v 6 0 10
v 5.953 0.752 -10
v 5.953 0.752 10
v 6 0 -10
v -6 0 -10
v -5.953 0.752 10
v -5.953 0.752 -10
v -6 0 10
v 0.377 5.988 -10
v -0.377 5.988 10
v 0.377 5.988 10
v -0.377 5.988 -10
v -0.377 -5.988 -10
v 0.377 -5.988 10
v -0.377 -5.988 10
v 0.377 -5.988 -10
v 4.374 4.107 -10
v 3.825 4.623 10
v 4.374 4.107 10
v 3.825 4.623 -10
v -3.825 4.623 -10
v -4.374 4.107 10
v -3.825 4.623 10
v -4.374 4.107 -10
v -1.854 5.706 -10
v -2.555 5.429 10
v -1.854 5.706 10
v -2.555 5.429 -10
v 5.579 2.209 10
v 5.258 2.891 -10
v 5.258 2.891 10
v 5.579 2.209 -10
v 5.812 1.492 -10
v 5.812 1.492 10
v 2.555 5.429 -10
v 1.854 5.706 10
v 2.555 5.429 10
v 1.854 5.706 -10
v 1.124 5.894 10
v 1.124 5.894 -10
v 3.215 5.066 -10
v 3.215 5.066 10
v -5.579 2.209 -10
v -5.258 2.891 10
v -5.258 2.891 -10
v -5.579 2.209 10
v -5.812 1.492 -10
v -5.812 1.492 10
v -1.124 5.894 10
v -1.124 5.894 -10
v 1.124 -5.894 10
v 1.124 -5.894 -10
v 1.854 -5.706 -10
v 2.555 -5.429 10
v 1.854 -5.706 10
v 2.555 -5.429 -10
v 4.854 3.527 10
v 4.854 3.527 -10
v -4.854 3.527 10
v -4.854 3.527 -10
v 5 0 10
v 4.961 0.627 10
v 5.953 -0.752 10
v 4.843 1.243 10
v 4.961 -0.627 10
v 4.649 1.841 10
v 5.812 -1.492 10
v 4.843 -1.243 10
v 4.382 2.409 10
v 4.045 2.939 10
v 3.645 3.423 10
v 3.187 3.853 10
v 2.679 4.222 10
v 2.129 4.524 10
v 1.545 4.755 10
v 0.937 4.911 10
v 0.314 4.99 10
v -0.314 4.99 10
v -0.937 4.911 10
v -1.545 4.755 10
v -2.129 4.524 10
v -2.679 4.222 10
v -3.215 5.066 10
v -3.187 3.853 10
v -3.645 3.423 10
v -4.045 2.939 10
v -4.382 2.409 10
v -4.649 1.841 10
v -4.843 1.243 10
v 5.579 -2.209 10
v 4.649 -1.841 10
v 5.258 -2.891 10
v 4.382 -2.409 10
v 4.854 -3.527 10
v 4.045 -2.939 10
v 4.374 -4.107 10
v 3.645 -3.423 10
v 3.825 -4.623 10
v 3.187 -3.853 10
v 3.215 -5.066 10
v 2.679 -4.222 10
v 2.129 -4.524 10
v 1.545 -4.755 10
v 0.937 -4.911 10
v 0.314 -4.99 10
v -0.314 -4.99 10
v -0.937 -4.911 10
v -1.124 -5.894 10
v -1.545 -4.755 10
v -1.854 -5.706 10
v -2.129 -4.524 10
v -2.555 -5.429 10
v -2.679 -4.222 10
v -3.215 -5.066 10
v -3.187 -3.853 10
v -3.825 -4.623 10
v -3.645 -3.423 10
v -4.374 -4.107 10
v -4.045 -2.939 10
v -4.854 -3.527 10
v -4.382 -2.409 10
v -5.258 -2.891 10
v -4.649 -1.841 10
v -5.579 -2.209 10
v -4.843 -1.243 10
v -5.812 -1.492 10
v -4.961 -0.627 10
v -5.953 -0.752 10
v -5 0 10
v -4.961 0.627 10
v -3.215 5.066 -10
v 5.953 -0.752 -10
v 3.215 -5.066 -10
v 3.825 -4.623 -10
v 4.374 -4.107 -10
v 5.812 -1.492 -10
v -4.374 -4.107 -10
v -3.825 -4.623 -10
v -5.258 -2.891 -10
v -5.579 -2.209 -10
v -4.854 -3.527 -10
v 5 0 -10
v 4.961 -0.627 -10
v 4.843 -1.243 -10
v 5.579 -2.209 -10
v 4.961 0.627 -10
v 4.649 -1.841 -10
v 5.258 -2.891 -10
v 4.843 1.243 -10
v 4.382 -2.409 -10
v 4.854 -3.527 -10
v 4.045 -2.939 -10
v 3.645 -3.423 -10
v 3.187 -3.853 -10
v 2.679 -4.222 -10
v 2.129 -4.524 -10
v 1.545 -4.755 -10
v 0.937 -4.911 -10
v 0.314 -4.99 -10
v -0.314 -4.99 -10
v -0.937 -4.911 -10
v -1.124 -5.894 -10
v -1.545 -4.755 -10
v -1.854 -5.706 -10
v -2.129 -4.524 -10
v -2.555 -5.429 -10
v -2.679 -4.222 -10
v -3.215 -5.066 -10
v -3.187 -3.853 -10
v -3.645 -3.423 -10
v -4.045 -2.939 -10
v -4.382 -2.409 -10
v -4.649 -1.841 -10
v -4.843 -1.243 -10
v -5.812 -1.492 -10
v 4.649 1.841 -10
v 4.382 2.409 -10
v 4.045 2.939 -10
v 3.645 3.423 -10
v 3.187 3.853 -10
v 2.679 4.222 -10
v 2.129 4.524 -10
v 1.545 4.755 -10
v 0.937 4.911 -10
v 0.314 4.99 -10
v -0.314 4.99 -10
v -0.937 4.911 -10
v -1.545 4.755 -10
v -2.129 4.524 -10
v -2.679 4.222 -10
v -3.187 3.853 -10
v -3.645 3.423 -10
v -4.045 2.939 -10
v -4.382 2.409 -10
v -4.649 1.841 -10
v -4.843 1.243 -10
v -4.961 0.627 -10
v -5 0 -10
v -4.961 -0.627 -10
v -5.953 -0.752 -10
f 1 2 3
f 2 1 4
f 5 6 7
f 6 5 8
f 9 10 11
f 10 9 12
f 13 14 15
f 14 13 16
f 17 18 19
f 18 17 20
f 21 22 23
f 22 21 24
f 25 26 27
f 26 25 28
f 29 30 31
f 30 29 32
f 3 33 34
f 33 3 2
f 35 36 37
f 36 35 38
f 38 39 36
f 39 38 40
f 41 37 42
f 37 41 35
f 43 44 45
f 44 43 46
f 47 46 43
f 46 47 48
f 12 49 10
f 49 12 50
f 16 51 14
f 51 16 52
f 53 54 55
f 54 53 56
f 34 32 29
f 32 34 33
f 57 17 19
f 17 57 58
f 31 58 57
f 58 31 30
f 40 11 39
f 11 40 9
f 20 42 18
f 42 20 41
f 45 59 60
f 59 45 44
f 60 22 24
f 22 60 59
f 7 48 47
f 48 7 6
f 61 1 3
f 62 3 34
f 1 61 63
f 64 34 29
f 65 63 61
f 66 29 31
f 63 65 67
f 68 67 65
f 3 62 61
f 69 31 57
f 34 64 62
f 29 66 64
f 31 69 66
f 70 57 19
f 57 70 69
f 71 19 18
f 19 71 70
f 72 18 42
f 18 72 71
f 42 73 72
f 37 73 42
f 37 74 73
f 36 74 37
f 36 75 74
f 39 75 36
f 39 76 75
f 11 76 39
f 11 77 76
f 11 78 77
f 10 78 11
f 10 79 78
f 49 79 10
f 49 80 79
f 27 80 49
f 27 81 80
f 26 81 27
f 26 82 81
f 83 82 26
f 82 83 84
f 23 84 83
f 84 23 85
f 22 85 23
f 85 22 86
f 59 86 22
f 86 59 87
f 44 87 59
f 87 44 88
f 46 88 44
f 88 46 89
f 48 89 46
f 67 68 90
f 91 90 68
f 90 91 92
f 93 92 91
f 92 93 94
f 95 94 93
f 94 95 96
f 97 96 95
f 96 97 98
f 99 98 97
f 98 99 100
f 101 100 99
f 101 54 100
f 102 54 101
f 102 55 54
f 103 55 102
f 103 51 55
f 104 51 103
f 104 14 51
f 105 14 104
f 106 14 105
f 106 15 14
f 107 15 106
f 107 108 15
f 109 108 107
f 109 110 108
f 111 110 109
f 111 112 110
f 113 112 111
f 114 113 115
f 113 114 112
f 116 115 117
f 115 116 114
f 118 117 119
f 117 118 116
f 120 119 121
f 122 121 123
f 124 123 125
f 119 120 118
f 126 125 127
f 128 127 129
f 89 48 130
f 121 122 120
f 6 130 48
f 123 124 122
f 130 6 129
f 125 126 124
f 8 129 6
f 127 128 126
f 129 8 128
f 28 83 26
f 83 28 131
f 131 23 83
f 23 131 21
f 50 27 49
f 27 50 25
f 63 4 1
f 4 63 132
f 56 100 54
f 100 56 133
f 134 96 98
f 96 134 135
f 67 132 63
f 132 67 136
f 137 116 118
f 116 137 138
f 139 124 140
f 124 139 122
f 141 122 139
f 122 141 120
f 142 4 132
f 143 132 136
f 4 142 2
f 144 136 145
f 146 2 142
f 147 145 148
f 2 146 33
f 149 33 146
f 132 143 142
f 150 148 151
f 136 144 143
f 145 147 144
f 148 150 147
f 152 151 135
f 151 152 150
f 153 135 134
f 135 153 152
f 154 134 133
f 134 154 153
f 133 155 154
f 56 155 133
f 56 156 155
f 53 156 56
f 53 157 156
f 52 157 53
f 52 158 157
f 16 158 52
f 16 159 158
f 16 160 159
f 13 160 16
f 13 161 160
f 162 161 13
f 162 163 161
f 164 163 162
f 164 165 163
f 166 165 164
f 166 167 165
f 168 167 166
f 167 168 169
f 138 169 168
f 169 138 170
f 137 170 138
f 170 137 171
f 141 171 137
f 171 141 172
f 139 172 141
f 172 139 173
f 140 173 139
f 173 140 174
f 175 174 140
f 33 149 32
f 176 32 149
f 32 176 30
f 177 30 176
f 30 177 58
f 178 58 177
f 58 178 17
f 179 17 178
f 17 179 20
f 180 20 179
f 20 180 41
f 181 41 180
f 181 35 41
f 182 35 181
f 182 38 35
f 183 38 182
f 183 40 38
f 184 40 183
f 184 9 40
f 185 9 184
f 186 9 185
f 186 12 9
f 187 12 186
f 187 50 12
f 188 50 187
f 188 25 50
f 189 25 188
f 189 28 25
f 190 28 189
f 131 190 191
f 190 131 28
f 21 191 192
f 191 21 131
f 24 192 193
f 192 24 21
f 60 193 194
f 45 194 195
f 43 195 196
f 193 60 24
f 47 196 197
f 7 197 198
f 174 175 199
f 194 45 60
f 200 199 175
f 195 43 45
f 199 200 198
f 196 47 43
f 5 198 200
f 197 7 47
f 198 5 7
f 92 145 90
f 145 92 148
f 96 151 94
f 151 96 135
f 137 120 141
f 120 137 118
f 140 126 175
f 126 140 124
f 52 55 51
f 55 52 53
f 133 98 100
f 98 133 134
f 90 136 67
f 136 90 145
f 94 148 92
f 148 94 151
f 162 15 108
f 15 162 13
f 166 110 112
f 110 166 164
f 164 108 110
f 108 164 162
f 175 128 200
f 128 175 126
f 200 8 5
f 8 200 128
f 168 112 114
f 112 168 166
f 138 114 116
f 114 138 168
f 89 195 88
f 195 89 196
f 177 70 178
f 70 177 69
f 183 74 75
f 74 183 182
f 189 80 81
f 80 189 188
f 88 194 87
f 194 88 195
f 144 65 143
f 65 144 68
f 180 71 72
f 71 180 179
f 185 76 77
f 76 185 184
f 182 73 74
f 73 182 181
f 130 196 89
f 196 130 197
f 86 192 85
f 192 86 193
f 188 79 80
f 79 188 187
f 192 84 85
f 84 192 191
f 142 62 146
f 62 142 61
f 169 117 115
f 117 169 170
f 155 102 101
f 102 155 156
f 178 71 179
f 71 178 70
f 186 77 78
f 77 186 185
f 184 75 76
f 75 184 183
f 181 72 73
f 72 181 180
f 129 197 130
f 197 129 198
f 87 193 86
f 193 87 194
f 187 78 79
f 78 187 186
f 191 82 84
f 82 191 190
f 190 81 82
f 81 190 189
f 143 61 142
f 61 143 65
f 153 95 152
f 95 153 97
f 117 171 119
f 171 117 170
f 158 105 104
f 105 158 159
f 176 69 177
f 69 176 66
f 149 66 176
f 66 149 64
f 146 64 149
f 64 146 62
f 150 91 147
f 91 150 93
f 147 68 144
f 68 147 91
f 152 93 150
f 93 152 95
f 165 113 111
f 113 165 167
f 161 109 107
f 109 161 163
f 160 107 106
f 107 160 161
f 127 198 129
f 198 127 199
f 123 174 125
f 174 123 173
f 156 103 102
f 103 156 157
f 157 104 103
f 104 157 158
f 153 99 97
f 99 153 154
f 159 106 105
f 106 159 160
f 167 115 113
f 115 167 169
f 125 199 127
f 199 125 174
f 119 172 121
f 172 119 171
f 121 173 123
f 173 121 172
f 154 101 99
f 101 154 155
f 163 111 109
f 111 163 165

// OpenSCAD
$fn = 50;


difference() {
	union() {
		translate(v = [0, 0, -10.0000000000]) {
			cylinder(h = 20, r = 6.0000000000);
		}
	}
	union() {
		translate(v = [0, 0, -100.0000000000]) {
			cylinder(h = 200, r = 5);
		}
	}
}
